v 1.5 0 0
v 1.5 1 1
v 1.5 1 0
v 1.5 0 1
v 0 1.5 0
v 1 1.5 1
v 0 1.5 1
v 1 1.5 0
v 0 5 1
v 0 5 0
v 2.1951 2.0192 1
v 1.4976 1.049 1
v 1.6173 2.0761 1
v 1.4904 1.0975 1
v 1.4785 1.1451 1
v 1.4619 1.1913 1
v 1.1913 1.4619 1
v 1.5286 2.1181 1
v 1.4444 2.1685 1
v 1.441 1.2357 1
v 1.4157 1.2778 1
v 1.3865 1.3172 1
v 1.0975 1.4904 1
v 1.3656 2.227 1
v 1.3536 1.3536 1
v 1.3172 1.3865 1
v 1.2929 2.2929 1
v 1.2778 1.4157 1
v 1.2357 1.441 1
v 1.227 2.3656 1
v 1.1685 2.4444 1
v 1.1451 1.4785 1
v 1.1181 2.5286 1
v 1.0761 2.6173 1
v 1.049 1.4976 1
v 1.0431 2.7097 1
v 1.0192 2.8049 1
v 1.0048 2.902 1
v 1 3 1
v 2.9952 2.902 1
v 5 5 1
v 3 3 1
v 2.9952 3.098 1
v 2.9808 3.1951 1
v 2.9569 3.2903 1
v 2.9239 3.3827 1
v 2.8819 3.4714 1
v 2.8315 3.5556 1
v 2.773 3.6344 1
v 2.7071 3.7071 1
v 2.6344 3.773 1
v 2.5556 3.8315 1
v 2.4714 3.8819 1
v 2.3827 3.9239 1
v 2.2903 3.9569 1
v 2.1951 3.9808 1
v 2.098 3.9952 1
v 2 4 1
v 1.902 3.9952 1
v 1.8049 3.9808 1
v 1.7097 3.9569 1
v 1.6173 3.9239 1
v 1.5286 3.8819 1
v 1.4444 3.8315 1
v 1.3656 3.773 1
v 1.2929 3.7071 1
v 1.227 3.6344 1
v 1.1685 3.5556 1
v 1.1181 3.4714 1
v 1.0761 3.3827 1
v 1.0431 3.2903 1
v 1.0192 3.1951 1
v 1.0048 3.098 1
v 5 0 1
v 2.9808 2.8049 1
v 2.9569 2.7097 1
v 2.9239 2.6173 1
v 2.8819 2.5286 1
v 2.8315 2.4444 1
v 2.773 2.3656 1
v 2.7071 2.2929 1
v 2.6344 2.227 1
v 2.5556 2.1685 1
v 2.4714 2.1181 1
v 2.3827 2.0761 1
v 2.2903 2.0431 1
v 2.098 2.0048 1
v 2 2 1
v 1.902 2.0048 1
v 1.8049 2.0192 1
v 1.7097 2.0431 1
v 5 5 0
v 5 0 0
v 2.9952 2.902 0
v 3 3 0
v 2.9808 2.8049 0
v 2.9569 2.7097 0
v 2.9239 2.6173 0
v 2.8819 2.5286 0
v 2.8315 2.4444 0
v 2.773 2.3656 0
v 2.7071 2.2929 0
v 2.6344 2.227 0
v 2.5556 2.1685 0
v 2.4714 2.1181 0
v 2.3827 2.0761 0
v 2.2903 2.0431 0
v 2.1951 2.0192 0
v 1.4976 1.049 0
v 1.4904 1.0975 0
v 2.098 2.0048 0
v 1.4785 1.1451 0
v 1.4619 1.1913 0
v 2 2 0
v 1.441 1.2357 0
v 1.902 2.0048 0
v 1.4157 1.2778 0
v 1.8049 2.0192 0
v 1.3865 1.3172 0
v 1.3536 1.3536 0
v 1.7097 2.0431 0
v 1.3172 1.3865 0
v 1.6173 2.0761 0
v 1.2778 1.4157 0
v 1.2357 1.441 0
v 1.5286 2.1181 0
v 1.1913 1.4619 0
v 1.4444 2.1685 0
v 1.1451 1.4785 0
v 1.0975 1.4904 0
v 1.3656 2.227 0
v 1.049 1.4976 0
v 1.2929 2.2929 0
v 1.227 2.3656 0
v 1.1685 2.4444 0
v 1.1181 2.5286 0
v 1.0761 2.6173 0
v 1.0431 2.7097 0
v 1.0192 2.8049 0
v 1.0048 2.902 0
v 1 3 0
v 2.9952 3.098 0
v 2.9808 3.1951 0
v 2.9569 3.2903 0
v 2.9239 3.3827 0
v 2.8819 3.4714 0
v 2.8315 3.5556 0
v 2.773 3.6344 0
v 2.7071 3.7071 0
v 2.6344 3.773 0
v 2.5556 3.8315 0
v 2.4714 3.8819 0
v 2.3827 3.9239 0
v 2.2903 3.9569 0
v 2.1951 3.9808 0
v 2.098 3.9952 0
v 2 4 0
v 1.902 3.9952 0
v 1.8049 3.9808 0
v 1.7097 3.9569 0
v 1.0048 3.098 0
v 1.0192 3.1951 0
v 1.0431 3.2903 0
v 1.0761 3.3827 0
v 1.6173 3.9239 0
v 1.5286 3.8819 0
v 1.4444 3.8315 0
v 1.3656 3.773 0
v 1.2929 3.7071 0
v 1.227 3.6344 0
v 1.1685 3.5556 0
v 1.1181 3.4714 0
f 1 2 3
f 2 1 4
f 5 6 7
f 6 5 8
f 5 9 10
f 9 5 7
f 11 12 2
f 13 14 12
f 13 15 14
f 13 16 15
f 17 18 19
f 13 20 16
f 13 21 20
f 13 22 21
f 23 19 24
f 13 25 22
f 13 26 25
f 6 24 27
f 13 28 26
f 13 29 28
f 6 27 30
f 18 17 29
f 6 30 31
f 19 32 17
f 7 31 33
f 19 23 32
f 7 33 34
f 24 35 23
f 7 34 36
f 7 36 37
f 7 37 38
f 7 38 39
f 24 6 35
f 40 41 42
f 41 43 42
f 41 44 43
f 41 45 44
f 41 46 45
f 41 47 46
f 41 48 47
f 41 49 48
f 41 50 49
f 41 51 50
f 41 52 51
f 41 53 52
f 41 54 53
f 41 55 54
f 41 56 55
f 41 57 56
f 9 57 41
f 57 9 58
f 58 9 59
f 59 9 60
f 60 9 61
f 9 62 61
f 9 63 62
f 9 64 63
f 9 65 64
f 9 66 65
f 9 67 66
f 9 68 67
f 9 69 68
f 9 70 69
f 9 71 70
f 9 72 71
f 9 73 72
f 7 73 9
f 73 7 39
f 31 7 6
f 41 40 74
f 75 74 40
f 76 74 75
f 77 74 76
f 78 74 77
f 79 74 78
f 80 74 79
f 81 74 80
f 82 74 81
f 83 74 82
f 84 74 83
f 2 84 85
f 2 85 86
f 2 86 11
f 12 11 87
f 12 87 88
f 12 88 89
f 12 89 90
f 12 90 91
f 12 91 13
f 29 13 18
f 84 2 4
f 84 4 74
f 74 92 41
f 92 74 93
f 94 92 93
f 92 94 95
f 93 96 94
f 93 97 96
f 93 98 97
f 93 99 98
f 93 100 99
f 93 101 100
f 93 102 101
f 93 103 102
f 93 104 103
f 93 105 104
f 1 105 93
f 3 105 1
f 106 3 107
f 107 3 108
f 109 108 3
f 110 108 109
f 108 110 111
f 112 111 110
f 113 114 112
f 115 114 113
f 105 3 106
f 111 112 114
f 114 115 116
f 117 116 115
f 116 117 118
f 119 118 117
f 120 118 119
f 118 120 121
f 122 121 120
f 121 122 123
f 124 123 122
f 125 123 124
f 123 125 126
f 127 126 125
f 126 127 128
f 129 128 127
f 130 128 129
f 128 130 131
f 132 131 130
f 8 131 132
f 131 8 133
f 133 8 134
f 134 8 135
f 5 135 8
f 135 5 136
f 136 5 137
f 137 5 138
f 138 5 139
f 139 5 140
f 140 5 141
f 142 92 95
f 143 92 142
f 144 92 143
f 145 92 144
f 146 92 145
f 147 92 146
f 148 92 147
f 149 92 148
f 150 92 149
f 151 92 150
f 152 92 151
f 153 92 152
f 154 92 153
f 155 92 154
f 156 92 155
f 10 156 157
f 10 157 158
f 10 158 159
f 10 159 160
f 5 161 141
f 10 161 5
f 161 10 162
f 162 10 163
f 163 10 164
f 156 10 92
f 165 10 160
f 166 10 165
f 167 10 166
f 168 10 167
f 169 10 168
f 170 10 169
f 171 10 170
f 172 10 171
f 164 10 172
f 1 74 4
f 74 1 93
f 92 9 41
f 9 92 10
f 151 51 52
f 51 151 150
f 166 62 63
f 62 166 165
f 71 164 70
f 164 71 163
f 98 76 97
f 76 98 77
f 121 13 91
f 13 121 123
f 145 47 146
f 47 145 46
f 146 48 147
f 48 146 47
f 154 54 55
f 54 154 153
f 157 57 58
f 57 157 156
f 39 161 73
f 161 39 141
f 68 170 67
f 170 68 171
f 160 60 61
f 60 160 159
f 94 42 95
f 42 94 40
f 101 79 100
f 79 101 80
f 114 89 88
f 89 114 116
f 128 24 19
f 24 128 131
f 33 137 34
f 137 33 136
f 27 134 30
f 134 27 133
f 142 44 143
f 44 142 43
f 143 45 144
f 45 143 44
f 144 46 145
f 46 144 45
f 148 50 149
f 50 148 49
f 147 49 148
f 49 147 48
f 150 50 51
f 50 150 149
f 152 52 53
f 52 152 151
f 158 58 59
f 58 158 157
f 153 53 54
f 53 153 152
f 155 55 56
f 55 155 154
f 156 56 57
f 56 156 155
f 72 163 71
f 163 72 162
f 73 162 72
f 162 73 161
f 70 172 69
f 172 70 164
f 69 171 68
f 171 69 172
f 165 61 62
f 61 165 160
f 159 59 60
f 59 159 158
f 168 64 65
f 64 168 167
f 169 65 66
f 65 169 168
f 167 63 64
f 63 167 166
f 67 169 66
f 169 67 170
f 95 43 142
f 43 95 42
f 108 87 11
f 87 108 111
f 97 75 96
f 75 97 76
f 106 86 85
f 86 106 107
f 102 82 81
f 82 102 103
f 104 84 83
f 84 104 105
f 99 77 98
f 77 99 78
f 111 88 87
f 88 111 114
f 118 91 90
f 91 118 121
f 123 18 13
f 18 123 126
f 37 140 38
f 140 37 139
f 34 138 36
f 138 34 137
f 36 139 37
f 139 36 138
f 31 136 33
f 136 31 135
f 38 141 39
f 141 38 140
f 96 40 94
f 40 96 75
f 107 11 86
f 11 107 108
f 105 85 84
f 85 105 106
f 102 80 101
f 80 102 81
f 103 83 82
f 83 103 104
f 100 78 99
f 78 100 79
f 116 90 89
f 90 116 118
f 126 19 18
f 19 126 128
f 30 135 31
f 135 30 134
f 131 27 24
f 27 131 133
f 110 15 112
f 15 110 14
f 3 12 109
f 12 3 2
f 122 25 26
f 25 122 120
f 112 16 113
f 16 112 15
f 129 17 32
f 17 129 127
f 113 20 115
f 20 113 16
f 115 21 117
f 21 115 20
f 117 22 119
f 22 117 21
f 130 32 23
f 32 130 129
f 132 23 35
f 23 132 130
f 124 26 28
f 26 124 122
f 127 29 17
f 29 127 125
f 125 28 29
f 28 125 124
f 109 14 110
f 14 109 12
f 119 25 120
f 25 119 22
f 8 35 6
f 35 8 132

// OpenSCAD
$fn=64;
difference() {
  scale([5,5,1]) cube();
  translate([2,3,-1]) scale([1,1,3]) cylinder(r=1);
  translate([1,1,-1]) scale([1,1,3]) cylinder(r=.5); 
  translate([0,0,-1]) {
    scale([1.5,1,3]) cube();
    scale([1,1.5,3]) cube();
  }
}
